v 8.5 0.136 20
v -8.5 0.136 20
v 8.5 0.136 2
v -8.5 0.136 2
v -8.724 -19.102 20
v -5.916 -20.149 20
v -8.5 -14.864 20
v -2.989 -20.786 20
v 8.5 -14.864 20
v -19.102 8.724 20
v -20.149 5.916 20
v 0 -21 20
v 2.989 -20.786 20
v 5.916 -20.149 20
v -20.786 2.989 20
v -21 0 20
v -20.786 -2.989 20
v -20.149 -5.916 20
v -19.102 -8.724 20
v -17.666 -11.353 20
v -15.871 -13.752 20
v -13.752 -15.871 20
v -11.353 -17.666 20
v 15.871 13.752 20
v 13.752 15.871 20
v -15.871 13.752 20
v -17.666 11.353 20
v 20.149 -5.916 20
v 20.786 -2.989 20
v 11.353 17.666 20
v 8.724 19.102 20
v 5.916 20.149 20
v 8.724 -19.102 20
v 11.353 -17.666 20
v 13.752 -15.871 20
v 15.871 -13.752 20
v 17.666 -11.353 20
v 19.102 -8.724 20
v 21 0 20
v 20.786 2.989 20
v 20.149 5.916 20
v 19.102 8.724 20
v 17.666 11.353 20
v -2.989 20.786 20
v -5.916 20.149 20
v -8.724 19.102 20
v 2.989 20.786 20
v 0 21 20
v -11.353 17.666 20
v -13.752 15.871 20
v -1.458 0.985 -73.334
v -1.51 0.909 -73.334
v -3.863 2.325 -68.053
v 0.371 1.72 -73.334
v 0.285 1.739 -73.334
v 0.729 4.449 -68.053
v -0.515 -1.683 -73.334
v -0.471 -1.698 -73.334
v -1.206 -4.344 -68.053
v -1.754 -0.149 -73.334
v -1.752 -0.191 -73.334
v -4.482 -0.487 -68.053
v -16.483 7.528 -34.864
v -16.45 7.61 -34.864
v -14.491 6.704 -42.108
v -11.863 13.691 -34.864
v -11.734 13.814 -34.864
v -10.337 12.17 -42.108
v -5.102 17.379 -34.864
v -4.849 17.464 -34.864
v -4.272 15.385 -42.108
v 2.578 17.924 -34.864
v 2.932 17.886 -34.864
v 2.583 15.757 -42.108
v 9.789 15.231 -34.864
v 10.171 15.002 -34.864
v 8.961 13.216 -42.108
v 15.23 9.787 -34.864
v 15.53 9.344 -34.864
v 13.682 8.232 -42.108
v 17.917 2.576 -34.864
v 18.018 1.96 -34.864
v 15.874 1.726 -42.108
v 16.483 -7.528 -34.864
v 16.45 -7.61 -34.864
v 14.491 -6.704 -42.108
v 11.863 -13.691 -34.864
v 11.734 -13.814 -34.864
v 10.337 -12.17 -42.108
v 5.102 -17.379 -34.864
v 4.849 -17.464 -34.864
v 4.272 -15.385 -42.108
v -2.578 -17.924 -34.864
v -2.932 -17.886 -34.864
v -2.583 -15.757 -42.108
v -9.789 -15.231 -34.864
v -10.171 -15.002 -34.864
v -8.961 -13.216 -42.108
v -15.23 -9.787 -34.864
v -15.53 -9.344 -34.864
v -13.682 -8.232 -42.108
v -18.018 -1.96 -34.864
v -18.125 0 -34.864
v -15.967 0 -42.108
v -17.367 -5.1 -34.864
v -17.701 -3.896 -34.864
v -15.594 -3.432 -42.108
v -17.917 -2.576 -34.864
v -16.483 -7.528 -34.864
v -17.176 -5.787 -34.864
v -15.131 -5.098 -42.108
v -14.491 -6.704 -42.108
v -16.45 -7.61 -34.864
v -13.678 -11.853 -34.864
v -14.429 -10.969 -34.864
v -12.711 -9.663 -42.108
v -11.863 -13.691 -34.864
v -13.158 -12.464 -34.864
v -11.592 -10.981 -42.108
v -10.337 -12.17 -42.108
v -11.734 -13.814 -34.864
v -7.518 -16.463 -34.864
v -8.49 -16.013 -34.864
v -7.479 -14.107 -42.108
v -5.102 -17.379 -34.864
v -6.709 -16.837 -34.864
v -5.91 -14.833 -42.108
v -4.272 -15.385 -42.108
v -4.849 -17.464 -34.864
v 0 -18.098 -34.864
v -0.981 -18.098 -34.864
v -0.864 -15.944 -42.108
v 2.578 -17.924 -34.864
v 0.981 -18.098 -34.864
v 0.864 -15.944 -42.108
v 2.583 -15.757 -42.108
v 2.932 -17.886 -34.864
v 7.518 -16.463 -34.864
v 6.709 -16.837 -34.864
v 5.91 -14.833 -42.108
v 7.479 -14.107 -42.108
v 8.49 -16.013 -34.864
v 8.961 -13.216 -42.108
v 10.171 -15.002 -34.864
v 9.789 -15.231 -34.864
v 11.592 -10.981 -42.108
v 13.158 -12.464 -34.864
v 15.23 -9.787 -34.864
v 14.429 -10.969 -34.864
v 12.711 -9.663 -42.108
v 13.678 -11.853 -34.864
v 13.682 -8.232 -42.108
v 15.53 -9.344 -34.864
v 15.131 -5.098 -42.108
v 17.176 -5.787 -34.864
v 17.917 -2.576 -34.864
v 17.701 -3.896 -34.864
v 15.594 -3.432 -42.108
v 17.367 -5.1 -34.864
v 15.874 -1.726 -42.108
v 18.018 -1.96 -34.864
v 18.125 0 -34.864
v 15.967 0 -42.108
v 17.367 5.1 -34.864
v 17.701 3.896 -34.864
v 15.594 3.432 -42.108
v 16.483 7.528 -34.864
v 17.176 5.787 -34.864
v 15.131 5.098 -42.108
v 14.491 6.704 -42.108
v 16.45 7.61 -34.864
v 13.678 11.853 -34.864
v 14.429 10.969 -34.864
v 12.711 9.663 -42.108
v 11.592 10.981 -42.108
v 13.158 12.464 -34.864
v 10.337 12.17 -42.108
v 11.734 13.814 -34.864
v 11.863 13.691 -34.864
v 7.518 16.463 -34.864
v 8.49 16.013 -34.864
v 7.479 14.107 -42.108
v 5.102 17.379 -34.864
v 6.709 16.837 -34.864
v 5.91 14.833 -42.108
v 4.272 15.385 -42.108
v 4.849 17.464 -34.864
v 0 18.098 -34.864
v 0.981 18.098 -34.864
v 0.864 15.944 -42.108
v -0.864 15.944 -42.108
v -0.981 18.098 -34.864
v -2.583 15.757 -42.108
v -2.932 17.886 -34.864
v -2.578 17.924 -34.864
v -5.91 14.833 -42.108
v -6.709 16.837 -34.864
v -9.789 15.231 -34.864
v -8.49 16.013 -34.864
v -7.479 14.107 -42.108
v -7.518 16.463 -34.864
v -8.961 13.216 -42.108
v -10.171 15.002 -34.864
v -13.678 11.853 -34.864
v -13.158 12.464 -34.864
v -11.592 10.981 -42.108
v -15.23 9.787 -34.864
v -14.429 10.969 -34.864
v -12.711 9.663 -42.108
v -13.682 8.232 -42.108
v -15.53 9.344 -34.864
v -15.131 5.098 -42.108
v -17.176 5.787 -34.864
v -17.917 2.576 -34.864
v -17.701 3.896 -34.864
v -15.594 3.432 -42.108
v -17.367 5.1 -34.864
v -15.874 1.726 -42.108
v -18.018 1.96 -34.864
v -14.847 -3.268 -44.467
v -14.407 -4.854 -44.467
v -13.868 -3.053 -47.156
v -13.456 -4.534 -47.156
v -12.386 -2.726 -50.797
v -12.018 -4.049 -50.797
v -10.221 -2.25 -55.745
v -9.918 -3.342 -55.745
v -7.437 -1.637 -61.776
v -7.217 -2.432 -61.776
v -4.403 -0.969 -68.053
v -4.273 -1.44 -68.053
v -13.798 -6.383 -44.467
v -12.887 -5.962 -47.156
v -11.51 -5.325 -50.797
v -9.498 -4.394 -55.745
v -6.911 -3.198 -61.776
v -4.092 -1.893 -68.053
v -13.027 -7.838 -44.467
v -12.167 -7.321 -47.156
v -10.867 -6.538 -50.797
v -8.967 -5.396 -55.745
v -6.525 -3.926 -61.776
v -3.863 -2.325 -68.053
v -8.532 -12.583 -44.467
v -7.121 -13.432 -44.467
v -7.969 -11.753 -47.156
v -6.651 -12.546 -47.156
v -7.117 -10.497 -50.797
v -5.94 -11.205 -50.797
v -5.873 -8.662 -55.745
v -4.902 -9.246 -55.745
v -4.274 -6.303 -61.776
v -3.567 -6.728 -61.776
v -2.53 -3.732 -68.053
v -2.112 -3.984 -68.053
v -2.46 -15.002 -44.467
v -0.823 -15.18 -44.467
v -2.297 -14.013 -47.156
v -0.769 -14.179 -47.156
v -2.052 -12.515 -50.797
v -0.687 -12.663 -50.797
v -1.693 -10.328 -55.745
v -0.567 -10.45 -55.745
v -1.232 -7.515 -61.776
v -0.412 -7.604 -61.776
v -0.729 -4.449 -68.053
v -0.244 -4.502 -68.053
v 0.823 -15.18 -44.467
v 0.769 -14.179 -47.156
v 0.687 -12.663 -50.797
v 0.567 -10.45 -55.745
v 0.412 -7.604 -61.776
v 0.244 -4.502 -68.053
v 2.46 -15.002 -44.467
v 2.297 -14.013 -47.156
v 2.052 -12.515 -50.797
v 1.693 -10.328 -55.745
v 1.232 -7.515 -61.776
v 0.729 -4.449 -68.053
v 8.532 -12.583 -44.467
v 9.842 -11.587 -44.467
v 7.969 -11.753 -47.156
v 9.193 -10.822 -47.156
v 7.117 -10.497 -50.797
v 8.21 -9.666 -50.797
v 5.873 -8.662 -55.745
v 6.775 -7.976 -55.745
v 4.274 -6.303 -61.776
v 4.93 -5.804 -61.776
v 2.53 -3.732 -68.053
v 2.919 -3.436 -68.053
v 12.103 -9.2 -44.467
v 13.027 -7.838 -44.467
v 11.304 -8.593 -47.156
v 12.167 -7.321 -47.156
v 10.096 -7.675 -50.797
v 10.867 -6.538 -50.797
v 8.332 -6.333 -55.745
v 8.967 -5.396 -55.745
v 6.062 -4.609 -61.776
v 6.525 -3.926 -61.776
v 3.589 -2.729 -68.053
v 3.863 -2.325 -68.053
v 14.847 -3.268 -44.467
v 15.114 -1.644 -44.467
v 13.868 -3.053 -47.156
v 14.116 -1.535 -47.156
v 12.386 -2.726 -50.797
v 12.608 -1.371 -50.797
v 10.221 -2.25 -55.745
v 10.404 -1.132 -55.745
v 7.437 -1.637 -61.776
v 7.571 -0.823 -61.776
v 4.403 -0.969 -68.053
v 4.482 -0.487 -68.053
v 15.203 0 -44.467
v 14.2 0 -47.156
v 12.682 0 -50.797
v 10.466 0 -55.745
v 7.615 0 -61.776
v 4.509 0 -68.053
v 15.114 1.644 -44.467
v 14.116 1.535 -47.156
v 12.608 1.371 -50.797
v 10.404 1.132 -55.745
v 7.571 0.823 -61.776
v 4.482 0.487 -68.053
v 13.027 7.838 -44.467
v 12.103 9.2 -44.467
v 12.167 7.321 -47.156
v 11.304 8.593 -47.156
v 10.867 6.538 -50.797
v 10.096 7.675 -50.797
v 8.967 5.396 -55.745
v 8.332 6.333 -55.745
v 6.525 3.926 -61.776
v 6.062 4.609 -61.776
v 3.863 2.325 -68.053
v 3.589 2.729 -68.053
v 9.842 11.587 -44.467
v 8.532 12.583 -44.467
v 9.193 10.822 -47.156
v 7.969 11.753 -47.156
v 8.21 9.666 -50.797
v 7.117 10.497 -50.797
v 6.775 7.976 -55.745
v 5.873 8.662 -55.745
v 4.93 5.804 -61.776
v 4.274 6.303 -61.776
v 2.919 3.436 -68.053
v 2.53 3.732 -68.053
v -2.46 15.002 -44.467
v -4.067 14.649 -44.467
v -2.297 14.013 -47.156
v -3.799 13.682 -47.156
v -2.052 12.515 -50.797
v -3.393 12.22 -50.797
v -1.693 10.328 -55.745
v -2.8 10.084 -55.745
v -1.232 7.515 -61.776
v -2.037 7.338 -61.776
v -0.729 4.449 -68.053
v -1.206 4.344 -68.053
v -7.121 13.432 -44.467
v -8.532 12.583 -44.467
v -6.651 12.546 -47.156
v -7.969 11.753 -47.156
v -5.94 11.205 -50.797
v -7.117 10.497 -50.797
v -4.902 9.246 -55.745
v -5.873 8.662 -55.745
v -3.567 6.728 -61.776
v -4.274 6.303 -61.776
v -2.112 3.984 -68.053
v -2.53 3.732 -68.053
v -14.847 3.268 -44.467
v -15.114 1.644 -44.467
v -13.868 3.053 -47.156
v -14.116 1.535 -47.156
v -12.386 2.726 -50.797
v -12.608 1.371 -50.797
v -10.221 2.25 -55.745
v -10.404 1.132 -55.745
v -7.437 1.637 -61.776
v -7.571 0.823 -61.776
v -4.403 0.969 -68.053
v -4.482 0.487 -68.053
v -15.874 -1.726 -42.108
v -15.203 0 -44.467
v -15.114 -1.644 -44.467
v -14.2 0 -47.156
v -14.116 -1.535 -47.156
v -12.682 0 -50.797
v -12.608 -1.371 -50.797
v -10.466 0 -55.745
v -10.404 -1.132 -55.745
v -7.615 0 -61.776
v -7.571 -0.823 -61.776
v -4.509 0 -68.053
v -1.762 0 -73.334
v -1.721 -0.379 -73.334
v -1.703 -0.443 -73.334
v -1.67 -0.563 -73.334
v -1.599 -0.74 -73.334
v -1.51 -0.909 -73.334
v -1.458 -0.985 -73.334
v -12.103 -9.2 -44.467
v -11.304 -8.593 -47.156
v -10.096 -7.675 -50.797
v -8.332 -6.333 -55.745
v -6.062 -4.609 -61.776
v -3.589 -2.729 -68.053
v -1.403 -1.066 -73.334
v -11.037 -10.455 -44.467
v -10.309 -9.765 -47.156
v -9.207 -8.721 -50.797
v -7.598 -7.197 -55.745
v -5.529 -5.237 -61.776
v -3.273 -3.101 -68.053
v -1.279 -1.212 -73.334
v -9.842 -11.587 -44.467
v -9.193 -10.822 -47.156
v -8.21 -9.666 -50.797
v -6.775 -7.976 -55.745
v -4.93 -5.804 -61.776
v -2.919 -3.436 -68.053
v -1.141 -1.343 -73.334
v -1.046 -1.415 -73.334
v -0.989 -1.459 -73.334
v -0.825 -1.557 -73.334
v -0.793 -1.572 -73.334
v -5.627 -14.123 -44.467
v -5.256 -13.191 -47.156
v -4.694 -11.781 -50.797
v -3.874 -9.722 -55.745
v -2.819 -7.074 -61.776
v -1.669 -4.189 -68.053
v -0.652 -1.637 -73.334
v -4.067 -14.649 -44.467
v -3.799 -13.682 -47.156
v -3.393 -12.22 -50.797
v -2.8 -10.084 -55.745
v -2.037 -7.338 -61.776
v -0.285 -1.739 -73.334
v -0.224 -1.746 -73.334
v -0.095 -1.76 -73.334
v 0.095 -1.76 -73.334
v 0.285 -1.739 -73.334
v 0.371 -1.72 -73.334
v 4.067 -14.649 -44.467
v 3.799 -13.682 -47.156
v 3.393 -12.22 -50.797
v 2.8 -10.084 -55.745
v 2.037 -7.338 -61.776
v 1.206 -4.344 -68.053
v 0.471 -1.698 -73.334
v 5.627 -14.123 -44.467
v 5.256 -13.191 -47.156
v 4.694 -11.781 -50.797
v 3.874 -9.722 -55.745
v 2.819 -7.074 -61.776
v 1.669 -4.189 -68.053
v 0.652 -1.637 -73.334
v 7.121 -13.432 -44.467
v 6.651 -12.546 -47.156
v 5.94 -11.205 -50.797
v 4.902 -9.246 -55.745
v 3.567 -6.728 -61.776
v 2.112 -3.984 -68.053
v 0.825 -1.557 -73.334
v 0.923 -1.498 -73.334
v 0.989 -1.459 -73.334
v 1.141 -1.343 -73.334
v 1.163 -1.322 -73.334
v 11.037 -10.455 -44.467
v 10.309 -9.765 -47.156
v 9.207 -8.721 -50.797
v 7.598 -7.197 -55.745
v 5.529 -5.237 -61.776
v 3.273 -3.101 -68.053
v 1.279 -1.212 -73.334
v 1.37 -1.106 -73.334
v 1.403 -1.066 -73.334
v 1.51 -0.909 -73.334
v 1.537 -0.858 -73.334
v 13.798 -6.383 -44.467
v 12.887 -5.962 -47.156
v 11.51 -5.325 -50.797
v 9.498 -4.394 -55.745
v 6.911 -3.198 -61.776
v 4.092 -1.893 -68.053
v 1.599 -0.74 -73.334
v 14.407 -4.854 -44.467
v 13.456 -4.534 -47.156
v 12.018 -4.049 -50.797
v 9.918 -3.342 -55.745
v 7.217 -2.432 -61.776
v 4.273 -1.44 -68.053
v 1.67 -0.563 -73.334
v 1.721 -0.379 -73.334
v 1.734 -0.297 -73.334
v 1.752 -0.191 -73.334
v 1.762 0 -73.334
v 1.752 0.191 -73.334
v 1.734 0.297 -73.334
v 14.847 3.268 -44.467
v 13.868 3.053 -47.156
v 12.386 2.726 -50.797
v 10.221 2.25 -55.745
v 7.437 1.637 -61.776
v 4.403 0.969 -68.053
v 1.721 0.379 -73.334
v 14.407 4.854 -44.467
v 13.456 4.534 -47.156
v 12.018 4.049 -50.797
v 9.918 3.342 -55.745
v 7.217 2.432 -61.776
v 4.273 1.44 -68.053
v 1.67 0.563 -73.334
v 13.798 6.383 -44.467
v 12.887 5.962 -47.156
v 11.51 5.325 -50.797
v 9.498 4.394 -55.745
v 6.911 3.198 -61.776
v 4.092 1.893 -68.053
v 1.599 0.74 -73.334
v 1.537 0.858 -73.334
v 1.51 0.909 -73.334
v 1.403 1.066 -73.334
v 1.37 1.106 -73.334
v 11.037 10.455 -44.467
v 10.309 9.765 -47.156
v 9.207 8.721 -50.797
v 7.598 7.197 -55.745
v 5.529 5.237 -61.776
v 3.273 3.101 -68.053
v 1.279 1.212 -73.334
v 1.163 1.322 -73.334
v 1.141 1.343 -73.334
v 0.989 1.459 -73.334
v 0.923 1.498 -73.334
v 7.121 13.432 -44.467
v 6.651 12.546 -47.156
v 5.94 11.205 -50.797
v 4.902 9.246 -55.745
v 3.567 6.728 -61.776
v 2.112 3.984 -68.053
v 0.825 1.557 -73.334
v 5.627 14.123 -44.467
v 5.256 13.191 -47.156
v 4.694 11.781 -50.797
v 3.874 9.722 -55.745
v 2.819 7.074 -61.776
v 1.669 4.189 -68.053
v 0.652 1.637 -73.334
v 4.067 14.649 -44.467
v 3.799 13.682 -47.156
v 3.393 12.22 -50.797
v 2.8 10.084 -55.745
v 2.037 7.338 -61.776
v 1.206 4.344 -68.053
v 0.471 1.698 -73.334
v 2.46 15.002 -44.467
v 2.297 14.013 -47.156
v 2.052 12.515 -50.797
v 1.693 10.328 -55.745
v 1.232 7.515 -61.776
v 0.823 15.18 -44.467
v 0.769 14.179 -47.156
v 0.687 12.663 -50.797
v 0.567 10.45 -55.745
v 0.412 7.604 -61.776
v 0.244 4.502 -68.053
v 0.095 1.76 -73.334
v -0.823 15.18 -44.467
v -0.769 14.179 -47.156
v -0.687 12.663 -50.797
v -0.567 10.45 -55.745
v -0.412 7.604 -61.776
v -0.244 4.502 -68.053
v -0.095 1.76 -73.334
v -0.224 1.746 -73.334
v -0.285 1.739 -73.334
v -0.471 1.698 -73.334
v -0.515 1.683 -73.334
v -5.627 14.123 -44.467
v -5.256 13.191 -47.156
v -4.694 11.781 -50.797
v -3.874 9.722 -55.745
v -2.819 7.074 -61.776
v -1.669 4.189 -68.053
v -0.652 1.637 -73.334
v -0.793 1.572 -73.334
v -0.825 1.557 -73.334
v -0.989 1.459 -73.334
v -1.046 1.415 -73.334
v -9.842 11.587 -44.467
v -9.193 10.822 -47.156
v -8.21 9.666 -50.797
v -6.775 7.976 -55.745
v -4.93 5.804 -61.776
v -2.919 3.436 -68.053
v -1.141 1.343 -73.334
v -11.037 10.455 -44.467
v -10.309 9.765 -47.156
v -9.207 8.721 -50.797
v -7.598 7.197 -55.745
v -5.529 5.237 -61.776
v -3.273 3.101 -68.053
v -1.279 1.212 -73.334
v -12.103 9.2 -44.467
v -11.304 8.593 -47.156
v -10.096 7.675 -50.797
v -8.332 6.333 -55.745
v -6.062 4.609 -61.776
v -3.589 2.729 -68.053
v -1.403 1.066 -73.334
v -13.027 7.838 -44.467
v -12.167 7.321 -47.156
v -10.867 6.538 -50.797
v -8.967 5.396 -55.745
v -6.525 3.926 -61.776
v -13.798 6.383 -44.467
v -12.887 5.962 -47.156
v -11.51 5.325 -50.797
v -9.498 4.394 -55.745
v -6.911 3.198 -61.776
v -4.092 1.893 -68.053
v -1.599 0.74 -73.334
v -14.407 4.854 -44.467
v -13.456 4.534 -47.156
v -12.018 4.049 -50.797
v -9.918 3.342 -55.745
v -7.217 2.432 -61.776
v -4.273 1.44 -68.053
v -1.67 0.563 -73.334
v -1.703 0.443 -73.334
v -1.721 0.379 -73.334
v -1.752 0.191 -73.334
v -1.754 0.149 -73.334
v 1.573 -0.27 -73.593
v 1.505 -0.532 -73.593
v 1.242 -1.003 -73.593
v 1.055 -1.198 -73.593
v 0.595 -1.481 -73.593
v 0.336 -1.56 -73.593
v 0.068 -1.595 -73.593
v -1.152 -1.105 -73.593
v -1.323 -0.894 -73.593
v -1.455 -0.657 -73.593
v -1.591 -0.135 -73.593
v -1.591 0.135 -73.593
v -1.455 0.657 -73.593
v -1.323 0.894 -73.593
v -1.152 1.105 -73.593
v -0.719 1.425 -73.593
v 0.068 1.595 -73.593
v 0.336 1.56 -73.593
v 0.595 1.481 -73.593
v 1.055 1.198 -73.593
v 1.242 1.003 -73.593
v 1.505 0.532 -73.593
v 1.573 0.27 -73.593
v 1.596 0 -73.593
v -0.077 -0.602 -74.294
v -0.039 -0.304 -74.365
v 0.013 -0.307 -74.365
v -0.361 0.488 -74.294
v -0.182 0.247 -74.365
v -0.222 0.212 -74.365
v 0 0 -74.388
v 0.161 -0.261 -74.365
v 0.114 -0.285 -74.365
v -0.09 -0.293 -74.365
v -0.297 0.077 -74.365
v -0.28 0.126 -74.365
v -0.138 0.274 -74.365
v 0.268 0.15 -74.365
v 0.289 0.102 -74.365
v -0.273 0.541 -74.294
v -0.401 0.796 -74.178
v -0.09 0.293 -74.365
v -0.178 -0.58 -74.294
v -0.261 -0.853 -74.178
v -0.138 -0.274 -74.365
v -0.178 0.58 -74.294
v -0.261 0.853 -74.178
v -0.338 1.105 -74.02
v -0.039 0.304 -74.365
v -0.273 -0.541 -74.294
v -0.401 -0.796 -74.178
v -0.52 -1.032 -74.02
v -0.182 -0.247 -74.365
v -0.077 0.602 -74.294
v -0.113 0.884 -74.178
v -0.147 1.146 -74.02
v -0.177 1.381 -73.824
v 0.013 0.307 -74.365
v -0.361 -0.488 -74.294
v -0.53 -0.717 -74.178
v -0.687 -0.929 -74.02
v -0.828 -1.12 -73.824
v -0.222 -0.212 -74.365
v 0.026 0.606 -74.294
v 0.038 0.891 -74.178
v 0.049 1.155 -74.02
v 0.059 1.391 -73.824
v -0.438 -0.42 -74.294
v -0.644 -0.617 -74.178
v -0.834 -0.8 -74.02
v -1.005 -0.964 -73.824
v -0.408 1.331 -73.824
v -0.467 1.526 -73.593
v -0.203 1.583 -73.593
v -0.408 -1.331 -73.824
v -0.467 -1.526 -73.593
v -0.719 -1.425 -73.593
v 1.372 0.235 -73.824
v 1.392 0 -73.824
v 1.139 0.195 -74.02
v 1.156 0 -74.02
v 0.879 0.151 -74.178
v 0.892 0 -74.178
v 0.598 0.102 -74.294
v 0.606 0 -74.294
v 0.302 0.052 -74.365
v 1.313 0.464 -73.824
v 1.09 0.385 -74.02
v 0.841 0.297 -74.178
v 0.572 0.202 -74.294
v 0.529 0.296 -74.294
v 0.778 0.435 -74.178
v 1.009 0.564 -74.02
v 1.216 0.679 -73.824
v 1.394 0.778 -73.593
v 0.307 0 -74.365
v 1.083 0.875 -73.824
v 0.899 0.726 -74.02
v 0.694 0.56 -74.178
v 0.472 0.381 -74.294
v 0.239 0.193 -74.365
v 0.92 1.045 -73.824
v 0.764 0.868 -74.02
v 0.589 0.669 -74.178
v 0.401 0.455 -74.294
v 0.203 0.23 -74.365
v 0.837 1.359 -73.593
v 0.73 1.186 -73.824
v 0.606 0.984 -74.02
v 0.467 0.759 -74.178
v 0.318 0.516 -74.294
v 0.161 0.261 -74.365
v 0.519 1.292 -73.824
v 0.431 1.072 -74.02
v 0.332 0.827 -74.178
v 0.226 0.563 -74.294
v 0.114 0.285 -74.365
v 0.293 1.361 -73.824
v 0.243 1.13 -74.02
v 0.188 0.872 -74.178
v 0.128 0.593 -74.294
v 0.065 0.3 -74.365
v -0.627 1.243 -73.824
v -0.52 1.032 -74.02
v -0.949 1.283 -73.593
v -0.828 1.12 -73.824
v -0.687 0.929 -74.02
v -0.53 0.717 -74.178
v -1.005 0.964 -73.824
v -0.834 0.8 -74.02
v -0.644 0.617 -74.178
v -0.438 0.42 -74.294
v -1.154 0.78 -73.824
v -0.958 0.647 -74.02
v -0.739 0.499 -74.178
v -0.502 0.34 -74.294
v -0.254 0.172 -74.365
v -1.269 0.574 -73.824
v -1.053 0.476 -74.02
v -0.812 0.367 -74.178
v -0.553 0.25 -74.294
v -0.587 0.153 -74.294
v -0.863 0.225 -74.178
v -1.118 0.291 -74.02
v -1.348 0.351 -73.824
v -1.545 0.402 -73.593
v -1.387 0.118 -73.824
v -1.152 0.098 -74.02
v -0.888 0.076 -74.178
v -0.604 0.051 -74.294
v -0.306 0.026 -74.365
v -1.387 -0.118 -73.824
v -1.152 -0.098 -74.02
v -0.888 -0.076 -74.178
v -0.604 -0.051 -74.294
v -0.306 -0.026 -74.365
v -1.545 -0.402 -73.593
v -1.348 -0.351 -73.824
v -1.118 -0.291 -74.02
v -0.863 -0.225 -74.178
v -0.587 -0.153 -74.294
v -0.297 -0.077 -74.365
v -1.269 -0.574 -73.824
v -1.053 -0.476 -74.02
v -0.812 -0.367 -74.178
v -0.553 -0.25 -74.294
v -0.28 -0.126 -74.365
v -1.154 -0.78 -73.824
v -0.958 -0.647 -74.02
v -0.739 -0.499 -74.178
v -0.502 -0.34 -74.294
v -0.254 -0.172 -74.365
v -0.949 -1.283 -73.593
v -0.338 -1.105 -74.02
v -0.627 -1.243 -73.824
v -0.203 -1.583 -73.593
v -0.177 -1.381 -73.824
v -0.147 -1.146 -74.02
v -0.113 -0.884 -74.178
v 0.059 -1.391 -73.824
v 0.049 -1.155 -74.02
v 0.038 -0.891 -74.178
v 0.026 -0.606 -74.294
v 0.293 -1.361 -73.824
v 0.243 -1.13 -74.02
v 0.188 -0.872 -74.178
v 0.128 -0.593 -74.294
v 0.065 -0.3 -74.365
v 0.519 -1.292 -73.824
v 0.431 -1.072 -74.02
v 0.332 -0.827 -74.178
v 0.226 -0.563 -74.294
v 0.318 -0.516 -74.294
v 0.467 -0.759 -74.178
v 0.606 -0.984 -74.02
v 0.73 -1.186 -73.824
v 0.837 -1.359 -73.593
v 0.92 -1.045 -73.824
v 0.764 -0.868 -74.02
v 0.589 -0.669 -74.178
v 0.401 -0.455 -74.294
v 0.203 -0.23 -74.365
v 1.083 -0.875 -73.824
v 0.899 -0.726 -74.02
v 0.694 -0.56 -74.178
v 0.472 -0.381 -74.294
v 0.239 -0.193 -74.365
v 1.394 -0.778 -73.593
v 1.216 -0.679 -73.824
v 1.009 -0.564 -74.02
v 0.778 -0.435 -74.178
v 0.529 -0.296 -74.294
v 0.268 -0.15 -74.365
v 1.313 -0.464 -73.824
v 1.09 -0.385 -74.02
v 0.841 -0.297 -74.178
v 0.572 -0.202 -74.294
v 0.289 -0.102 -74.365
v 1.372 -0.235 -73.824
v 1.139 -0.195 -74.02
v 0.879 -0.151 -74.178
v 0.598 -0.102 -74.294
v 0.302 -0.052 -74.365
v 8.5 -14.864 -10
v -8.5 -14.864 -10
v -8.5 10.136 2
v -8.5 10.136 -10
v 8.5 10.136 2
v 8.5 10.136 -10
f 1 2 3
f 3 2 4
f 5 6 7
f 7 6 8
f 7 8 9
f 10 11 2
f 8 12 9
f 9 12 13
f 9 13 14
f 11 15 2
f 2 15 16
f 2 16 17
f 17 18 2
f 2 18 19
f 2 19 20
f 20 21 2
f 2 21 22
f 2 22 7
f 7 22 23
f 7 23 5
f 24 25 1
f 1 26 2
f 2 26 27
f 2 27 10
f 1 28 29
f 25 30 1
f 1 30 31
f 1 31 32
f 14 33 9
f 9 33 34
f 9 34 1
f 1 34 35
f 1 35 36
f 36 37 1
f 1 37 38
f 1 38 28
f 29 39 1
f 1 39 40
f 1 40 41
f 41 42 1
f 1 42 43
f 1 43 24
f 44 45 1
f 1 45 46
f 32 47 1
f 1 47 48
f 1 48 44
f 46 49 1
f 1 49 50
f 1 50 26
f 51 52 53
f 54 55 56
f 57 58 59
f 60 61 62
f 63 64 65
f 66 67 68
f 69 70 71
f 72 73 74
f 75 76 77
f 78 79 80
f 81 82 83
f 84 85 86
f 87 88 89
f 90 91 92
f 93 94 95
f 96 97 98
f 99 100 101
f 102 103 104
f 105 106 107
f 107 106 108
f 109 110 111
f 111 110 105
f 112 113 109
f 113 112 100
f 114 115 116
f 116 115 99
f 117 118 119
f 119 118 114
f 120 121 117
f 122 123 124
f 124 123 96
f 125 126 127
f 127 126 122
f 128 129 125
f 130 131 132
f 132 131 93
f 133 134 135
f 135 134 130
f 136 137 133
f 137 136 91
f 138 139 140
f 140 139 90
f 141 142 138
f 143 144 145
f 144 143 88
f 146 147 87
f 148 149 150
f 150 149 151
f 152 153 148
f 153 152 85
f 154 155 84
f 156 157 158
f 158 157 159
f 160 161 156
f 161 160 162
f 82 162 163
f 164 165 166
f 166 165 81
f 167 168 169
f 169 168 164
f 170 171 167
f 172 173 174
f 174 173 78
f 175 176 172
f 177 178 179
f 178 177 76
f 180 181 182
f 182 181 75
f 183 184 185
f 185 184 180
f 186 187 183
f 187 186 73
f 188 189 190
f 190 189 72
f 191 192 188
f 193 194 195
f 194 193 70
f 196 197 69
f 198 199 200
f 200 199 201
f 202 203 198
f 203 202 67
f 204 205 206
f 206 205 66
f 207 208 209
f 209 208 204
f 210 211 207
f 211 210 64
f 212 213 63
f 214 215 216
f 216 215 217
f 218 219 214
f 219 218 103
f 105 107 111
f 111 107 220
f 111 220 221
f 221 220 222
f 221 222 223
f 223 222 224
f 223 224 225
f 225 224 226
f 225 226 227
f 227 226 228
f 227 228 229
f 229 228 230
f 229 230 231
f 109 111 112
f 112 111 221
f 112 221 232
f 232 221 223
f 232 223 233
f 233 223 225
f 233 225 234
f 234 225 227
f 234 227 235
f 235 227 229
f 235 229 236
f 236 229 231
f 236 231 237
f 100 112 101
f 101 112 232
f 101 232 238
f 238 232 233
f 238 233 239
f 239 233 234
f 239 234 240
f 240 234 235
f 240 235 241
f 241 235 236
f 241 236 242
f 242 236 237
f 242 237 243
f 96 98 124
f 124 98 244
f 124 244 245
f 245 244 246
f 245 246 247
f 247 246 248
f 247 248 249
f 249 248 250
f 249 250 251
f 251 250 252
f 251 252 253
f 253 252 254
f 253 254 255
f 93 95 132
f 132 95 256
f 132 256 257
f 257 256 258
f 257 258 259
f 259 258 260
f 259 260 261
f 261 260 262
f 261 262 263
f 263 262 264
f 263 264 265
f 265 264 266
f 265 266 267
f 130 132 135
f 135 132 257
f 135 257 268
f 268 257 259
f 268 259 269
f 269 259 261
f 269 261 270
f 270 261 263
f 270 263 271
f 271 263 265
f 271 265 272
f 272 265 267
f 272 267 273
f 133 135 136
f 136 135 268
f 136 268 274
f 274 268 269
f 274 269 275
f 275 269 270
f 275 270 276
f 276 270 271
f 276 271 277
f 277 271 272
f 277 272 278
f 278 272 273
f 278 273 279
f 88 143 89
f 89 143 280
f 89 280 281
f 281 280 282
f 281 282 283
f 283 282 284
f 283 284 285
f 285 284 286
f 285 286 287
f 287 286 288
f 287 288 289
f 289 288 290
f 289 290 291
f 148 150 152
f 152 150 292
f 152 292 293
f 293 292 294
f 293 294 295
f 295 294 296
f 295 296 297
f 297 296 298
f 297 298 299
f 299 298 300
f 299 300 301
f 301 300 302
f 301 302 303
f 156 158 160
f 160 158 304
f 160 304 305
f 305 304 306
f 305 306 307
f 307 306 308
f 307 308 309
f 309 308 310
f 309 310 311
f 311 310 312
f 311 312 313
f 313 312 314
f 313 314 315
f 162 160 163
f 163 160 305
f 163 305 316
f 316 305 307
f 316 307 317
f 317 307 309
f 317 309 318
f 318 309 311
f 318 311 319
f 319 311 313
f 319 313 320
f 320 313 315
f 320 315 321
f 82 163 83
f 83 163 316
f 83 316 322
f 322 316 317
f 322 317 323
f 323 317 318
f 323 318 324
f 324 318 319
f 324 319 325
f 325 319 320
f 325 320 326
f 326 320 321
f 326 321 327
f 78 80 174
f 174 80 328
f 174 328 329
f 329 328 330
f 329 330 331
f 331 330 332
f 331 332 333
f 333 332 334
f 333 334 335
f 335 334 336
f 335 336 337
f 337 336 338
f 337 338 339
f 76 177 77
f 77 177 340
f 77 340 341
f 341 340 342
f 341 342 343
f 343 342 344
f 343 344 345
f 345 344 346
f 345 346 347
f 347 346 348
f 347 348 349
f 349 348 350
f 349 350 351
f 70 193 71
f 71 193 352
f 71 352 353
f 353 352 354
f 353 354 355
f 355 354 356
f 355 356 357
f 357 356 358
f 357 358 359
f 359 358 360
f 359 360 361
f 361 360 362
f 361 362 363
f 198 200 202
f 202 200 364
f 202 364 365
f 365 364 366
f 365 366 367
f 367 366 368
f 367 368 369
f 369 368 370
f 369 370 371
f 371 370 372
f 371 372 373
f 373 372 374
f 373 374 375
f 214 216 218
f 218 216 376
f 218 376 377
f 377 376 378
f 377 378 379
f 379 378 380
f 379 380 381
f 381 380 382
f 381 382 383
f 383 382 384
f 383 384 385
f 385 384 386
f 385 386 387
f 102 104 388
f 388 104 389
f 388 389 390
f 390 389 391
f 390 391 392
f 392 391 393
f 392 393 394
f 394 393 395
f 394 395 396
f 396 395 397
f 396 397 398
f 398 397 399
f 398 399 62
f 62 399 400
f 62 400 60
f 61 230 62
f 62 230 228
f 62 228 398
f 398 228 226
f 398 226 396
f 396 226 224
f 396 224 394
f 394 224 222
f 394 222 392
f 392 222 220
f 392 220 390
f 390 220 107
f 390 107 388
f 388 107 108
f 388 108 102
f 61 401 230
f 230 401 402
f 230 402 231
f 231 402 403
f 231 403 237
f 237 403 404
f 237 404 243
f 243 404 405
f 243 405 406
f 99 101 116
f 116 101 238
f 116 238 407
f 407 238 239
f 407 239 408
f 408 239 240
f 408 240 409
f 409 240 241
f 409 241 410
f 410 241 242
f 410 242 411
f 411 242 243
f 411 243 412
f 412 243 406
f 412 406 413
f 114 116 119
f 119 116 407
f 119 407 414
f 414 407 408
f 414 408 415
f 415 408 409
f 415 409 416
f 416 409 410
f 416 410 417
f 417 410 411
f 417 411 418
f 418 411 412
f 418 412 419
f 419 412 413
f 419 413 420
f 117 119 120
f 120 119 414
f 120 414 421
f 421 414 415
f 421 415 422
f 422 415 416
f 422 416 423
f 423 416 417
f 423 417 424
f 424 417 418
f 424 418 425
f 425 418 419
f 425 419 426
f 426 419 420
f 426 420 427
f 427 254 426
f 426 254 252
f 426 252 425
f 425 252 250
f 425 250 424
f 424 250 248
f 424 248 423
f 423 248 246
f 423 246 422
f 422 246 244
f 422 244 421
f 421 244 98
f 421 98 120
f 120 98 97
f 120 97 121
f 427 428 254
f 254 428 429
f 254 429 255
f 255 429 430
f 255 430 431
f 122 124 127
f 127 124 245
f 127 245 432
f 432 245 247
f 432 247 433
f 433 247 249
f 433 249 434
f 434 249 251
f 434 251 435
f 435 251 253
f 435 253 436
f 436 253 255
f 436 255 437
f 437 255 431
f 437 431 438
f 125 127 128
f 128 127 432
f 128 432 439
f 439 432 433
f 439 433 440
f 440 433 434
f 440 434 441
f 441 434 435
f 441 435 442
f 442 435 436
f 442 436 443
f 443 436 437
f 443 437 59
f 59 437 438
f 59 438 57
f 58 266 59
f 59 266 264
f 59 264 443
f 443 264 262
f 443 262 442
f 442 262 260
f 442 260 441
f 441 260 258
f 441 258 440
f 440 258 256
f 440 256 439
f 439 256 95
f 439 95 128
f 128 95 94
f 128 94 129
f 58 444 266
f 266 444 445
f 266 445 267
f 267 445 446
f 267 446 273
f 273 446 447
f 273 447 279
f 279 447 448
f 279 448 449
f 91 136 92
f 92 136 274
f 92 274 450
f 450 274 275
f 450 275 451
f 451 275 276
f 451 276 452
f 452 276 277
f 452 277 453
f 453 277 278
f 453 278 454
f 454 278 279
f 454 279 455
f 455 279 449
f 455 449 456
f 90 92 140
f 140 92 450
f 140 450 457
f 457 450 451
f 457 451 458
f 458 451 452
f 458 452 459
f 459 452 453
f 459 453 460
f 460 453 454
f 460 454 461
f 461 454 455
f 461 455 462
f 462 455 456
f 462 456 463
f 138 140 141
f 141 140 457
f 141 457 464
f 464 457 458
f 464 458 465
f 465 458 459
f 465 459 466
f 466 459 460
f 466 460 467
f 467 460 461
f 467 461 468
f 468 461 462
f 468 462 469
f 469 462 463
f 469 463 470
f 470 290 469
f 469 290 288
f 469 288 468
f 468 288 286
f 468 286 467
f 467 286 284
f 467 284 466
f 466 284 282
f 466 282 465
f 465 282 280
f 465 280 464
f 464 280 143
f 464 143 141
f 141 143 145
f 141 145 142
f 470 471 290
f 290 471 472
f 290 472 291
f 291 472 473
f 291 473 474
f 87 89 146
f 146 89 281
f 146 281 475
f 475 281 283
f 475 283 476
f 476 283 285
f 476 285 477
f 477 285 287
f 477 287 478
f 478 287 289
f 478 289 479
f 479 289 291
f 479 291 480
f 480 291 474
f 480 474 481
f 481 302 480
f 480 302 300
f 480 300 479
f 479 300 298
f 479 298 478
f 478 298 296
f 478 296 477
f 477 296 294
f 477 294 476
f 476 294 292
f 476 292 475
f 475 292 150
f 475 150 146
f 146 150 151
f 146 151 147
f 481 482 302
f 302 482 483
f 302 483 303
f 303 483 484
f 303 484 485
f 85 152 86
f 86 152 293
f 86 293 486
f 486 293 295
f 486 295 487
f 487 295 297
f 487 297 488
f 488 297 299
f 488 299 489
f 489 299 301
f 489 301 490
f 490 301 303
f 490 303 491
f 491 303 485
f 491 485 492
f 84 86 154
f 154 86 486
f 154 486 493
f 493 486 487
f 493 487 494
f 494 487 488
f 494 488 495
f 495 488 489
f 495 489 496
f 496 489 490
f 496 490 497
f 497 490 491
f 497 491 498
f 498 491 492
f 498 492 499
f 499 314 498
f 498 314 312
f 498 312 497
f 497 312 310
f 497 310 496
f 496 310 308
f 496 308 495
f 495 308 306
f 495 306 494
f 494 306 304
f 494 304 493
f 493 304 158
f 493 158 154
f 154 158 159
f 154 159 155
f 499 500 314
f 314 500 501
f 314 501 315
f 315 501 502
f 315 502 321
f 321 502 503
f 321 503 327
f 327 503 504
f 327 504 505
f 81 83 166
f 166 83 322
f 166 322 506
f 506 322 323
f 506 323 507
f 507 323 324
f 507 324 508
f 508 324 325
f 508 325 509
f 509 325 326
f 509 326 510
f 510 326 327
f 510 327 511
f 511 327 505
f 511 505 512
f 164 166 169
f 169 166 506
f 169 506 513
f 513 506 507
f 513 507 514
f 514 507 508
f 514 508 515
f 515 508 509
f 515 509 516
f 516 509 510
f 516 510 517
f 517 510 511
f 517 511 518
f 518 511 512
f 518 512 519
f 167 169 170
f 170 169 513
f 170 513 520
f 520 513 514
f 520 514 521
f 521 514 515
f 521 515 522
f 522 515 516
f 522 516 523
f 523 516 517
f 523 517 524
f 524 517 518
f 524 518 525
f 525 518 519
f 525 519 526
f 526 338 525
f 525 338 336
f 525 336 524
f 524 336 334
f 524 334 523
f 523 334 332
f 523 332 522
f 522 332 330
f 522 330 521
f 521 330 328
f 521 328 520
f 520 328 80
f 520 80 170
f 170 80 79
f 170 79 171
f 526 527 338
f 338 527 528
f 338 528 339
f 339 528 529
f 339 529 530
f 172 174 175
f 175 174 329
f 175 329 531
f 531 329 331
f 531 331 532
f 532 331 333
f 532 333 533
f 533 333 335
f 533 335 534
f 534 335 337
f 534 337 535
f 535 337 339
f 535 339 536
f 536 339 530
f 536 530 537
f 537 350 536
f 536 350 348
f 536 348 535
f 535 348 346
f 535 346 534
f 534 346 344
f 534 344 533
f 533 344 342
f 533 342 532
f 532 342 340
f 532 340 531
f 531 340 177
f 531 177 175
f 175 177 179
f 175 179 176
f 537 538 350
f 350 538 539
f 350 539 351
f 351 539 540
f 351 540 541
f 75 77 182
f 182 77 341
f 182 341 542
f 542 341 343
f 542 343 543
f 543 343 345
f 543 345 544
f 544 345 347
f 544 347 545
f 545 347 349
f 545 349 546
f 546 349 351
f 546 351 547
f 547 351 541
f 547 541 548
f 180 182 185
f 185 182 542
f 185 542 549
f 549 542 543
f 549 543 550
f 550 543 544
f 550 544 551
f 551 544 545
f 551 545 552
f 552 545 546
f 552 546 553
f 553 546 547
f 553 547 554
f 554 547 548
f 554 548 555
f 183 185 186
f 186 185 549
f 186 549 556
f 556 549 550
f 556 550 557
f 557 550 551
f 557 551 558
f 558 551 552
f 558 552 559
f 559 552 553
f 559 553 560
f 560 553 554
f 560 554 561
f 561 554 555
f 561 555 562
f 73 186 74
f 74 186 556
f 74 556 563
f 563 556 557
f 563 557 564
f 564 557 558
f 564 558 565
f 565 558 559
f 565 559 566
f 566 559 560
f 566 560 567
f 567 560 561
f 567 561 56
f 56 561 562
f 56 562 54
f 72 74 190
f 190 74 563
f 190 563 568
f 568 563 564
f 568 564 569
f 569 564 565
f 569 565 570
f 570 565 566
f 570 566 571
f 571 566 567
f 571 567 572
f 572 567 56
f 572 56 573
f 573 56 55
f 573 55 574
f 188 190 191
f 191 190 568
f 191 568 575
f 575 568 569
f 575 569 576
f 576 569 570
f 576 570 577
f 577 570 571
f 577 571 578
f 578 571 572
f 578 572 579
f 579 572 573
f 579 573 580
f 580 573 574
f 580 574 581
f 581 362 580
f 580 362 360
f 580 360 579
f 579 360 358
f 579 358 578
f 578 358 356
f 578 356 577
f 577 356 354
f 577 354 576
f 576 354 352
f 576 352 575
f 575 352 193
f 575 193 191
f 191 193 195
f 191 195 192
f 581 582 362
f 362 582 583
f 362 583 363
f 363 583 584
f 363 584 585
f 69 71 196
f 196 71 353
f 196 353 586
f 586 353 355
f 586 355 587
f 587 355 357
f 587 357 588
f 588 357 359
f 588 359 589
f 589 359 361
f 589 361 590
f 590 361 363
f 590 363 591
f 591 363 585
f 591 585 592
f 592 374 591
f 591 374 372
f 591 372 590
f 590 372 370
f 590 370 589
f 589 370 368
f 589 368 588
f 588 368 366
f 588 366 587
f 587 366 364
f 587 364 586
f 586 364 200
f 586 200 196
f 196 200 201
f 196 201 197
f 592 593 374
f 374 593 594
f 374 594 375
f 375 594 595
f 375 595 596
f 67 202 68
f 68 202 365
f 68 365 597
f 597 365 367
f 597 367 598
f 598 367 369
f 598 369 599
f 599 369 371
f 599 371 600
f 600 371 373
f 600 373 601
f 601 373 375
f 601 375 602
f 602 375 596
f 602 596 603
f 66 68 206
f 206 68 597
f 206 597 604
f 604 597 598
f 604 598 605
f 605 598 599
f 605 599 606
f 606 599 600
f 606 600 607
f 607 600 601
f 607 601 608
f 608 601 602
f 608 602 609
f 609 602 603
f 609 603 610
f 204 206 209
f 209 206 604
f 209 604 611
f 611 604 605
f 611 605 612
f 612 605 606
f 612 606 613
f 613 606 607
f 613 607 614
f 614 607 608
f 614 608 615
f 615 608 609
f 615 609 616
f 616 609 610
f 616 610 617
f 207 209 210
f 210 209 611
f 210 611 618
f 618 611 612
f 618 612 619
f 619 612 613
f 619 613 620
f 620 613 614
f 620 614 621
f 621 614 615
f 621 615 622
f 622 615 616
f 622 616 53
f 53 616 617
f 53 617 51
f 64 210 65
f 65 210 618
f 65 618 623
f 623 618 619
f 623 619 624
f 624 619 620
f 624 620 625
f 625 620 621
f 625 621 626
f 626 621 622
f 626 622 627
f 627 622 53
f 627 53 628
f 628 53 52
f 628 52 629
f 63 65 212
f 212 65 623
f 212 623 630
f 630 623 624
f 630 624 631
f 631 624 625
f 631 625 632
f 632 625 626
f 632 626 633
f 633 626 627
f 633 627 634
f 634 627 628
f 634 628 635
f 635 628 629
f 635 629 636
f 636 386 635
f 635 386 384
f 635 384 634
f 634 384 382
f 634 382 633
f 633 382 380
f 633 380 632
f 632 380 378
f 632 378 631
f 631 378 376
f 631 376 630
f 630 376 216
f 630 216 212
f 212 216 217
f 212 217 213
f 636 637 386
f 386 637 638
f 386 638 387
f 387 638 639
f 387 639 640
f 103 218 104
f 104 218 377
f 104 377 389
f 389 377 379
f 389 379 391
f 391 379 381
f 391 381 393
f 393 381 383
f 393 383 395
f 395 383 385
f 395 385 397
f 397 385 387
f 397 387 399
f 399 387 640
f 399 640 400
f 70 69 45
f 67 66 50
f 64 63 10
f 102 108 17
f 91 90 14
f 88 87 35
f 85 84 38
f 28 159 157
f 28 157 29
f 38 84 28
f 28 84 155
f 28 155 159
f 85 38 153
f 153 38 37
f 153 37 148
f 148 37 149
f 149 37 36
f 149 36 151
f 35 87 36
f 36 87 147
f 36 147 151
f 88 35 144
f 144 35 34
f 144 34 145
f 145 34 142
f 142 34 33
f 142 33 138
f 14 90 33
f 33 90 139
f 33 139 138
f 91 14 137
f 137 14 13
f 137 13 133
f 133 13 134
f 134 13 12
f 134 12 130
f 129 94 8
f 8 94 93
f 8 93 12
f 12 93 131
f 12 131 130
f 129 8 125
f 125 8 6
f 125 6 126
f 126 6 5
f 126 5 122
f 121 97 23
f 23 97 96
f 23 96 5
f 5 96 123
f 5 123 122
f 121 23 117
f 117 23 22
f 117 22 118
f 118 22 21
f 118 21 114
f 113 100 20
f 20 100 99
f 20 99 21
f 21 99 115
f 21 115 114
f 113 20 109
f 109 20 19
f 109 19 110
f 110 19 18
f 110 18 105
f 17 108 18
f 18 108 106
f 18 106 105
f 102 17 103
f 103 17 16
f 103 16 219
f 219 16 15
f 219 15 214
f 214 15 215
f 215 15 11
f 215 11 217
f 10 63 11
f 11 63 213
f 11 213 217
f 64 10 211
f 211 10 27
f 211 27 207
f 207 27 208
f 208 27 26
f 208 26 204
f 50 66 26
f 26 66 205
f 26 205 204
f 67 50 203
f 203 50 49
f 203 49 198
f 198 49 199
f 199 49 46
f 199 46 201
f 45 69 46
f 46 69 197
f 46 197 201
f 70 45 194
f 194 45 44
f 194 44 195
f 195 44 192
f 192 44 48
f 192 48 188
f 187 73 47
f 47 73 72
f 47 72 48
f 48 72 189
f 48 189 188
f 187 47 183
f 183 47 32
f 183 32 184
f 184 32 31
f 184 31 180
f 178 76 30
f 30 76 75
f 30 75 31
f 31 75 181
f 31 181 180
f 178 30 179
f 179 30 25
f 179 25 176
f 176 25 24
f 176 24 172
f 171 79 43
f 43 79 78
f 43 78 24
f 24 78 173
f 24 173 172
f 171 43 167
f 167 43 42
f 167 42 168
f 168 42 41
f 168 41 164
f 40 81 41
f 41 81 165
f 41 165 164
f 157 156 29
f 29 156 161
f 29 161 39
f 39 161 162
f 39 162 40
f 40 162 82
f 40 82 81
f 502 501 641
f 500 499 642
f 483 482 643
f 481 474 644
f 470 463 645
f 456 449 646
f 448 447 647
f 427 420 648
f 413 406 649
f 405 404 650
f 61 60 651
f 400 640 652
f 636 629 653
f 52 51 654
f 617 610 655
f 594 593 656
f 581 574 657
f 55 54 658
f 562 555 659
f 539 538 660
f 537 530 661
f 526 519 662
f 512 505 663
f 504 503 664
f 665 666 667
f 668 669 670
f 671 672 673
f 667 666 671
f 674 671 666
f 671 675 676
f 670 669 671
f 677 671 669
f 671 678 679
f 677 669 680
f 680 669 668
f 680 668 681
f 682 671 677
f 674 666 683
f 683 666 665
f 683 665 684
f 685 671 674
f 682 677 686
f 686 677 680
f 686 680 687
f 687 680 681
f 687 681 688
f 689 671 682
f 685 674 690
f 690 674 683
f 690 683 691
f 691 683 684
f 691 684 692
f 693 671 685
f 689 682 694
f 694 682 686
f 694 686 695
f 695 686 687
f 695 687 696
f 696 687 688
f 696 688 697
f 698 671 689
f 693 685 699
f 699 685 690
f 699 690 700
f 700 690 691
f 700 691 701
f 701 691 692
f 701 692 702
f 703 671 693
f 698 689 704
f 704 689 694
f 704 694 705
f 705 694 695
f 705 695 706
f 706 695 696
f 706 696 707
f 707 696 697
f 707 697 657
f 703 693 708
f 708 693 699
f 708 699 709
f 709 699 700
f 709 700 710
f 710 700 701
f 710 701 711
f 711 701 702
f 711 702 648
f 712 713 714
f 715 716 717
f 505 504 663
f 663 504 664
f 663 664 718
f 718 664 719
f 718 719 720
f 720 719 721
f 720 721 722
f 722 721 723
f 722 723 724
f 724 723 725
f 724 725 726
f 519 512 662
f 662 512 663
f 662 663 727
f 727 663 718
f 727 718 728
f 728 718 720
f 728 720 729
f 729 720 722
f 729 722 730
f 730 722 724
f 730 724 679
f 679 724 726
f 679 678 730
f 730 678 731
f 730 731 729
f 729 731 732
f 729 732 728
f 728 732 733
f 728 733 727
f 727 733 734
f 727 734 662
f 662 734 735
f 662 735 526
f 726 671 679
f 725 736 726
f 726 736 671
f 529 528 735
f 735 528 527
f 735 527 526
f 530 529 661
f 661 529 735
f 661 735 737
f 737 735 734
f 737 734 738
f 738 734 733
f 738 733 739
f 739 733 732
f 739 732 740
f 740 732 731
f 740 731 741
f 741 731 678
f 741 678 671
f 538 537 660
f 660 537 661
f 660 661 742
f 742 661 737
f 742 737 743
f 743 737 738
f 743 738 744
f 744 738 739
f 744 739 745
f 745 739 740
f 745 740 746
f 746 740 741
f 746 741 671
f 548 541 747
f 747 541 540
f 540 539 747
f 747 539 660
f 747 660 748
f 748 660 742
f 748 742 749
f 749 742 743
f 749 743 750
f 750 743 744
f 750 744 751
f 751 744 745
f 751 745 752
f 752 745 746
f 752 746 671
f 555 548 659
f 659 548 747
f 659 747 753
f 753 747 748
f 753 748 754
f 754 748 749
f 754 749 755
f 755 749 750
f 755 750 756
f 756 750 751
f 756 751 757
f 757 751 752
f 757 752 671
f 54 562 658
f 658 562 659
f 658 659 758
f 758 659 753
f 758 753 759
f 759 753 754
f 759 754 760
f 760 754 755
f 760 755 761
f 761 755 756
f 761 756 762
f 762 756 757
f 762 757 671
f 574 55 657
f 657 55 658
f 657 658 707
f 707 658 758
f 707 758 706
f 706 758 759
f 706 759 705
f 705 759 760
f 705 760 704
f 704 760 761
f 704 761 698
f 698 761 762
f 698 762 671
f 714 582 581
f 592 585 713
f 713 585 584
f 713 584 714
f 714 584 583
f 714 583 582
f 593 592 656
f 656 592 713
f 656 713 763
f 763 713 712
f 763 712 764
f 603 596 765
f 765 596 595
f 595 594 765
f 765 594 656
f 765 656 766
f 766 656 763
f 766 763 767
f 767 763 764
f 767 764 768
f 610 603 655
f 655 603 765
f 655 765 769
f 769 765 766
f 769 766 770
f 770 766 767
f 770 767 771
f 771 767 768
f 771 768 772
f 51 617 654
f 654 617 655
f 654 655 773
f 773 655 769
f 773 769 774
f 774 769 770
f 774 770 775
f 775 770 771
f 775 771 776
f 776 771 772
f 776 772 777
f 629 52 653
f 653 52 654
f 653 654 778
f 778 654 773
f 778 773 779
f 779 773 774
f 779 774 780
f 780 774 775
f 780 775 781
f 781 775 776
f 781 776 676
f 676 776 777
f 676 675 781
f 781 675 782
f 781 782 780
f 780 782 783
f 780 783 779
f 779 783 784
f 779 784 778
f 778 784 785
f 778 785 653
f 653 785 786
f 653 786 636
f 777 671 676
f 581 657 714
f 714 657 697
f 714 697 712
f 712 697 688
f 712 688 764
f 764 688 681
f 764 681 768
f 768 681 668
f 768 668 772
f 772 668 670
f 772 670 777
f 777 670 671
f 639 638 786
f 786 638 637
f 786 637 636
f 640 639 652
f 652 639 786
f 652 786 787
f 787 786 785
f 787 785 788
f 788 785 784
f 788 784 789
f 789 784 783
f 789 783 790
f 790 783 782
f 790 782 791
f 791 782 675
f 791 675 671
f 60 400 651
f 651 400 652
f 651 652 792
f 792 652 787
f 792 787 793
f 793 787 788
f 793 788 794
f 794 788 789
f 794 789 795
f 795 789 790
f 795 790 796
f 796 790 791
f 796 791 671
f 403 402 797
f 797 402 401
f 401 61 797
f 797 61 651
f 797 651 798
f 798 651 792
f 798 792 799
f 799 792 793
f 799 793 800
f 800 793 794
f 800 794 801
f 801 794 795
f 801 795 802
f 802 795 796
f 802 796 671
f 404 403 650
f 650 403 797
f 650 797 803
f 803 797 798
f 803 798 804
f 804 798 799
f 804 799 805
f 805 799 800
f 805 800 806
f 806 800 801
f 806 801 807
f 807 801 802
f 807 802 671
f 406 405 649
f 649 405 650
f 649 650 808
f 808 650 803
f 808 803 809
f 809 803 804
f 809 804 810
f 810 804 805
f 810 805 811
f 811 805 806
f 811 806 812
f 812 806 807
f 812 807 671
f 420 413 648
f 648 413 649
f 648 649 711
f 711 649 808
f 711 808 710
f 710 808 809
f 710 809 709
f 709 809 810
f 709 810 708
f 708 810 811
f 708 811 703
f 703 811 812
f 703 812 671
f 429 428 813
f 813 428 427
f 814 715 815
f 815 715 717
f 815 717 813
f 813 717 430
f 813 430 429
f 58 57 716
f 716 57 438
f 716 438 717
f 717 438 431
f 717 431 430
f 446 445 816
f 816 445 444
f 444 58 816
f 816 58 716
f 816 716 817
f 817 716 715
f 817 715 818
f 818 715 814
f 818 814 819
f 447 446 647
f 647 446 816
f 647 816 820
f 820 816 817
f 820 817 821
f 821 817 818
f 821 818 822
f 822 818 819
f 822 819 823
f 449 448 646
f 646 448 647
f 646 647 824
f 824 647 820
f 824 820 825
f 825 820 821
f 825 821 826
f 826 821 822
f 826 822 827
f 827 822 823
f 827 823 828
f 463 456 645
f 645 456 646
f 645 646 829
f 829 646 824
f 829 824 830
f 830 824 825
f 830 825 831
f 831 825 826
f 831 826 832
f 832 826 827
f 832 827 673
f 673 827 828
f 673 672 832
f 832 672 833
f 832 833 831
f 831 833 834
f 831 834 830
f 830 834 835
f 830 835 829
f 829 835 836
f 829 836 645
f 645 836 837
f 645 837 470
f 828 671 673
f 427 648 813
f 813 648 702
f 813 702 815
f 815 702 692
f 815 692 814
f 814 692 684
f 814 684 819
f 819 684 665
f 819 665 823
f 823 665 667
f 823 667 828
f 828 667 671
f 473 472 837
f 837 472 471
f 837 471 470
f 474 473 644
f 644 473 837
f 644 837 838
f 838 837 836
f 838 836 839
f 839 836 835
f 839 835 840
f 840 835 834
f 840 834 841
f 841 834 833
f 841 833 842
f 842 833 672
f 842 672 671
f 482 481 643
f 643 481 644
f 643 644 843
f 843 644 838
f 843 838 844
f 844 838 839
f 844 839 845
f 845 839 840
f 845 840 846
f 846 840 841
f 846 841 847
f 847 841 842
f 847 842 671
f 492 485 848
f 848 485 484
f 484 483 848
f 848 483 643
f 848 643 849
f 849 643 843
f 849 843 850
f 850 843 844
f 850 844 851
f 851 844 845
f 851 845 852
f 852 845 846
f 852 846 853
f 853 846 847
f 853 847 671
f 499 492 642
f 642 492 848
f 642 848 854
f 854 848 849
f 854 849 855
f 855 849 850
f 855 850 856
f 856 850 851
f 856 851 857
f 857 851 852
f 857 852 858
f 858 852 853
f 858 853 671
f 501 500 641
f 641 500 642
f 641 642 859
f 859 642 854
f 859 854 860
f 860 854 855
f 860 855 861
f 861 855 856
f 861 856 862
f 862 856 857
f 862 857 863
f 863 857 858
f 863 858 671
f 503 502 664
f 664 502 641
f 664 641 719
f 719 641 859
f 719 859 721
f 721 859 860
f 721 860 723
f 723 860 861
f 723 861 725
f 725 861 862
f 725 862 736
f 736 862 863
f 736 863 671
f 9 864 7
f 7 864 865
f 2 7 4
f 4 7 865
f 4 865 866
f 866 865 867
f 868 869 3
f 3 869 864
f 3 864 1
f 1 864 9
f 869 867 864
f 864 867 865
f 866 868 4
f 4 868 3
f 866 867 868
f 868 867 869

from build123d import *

# Parameters (mm, degrees)
SKETCH_4_W          = 17
SKETCH_4_H          = 15
CUT_EXTRUDE_1_DEPTH = 30
SKETCH_5_W          = 17
SKETCH_5_H          = 12
CUT_EXTRUDE_2_DEPTH = 25


with BuildPart() as part:
    # Эскиз1 → Повернуть1 (revolve)
    with BuildSketch(Plane(origin=(0, 0, 0), x_dir=(1, 0, 0), z_dir=(0, 1, 0))):
        with BuildLine():
            Line((-21, -20), (0, -20))
            Line((0, -20), (0, 76.509456591))
            add(Edge.make_bspline(
                [(-21, 23.303526799), (-20.950151988, 23.55619715), (-20.588242456, 25.356689417), (-19.861805291, 28.542980585), (-18.781007648, 32.618309393), (-17.683803917, 36.387694686), (-16.794111183, 39.324775715), (-16.139995318, 41.546015667), (-15.635538449, 43.197589032), (-15.024163935, 45.012380328), (-13.937228163, 47.886209516), (-11.955046686, 52.531179902), (-8.996626021, 58.945239937), (-6.340494309, 64.415530495), (-4.283171781, 68.509695264), (-2.81904039, 71.351111958), (-1.479938004, 73.873249362), (-0.567336195, 75.524317414), (-0.112134261, 76.316693352), (0, 76.509456591)],
                knots=[0.246223276, 0.246223276, 0.246223276, 0.246223276, 0.255865129, 0.31540599, 0.374946852, 0.434487714, 0.494028576, 0.523799007, 0.553569438, 0.583339868, 0.613110299, 0.672651161, 0.732192023, 0.791732885, 0.821503316, 0.851273747, 0.881044177, 0.910814608, 0.921120543, 0.921120543, 0.921120543, 0.921120543], degree=3))
            Line((-21, 23.303526799), (-21, -20))
        make_face()
    revolve(axis=Axis((0, 0, -76.509456591), (0, 0, 1)))

    # Эскиз2 → Вырез-Повернуть1 (revolve, cut)
    with BuildSketch(Plane(origin=(0, 0, 0), x_dir=(1, 0, 0), z_dir=(0, 1, 0))):
        Polygon((21, -20), (21, 66.971973821), (16.441991992, 66.971973821), align=None)
    revolve(axis=Axis((0, 0, 20), (0, 0, -1)), mode=Mode.SUBTRACT)

    # Эскиз3 → Вырез-Повернуть2 (revolve, cut)
    with BuildSketch(Plane(origin=(0, 0, 0), x_dir=(1, 0, 0), z_dir=(0, 1, 0))):
        with BuildLine():
            Line((1e-08, 76.509474859), (1e-08, 74.388246536))
            ThreePointArc((1e-08, 74.388246536), (1.026734817, 74.10458439), (1.762223825, 73.334062167))
            Line((1.762223825, 73.334062167), (4.025925166, 73.334062167))
            Line((4.025925166, 73.334062167), (4.025925166, 76.509474859))
            Line((4.025925166, 76.509474859), (1e-08, 76.509474859))
        make_face()
    revolve(axis=Axis((1e-08, 0, -76.509474859), (0, 0, 1)), mode=Mode.SUBTRACT)

    # Эскиз4 → Вырез-Вытянуть1 (cut)
    with BuildSketch(Plane.XY.offset(20)):
        with Locations((0, -7.363542794)):
            Rectangle(SKETCH_4_W, SKETCH_4_H)
    extrude(amount=-CUT_EXTRUDE_1_DEPTH, mode=Mode.SUBTRACT)

    # Эскиз5 → Вырез-Вытянуть2 (cut)
    with BuildSketch(Plane(origin=(0, -14.863542794, 0), x_dir=(1, 0, 0), z_dir=(0, 1, 0))):
        with Locations((0, 4)):
            Rectangle(SKETCH_5_W, SKETCH_5_H)
    extrude(amount=CUT_EXTRUDE_2_DEPTH, mode=Mode.SUBTRACT)


solid = part.part
